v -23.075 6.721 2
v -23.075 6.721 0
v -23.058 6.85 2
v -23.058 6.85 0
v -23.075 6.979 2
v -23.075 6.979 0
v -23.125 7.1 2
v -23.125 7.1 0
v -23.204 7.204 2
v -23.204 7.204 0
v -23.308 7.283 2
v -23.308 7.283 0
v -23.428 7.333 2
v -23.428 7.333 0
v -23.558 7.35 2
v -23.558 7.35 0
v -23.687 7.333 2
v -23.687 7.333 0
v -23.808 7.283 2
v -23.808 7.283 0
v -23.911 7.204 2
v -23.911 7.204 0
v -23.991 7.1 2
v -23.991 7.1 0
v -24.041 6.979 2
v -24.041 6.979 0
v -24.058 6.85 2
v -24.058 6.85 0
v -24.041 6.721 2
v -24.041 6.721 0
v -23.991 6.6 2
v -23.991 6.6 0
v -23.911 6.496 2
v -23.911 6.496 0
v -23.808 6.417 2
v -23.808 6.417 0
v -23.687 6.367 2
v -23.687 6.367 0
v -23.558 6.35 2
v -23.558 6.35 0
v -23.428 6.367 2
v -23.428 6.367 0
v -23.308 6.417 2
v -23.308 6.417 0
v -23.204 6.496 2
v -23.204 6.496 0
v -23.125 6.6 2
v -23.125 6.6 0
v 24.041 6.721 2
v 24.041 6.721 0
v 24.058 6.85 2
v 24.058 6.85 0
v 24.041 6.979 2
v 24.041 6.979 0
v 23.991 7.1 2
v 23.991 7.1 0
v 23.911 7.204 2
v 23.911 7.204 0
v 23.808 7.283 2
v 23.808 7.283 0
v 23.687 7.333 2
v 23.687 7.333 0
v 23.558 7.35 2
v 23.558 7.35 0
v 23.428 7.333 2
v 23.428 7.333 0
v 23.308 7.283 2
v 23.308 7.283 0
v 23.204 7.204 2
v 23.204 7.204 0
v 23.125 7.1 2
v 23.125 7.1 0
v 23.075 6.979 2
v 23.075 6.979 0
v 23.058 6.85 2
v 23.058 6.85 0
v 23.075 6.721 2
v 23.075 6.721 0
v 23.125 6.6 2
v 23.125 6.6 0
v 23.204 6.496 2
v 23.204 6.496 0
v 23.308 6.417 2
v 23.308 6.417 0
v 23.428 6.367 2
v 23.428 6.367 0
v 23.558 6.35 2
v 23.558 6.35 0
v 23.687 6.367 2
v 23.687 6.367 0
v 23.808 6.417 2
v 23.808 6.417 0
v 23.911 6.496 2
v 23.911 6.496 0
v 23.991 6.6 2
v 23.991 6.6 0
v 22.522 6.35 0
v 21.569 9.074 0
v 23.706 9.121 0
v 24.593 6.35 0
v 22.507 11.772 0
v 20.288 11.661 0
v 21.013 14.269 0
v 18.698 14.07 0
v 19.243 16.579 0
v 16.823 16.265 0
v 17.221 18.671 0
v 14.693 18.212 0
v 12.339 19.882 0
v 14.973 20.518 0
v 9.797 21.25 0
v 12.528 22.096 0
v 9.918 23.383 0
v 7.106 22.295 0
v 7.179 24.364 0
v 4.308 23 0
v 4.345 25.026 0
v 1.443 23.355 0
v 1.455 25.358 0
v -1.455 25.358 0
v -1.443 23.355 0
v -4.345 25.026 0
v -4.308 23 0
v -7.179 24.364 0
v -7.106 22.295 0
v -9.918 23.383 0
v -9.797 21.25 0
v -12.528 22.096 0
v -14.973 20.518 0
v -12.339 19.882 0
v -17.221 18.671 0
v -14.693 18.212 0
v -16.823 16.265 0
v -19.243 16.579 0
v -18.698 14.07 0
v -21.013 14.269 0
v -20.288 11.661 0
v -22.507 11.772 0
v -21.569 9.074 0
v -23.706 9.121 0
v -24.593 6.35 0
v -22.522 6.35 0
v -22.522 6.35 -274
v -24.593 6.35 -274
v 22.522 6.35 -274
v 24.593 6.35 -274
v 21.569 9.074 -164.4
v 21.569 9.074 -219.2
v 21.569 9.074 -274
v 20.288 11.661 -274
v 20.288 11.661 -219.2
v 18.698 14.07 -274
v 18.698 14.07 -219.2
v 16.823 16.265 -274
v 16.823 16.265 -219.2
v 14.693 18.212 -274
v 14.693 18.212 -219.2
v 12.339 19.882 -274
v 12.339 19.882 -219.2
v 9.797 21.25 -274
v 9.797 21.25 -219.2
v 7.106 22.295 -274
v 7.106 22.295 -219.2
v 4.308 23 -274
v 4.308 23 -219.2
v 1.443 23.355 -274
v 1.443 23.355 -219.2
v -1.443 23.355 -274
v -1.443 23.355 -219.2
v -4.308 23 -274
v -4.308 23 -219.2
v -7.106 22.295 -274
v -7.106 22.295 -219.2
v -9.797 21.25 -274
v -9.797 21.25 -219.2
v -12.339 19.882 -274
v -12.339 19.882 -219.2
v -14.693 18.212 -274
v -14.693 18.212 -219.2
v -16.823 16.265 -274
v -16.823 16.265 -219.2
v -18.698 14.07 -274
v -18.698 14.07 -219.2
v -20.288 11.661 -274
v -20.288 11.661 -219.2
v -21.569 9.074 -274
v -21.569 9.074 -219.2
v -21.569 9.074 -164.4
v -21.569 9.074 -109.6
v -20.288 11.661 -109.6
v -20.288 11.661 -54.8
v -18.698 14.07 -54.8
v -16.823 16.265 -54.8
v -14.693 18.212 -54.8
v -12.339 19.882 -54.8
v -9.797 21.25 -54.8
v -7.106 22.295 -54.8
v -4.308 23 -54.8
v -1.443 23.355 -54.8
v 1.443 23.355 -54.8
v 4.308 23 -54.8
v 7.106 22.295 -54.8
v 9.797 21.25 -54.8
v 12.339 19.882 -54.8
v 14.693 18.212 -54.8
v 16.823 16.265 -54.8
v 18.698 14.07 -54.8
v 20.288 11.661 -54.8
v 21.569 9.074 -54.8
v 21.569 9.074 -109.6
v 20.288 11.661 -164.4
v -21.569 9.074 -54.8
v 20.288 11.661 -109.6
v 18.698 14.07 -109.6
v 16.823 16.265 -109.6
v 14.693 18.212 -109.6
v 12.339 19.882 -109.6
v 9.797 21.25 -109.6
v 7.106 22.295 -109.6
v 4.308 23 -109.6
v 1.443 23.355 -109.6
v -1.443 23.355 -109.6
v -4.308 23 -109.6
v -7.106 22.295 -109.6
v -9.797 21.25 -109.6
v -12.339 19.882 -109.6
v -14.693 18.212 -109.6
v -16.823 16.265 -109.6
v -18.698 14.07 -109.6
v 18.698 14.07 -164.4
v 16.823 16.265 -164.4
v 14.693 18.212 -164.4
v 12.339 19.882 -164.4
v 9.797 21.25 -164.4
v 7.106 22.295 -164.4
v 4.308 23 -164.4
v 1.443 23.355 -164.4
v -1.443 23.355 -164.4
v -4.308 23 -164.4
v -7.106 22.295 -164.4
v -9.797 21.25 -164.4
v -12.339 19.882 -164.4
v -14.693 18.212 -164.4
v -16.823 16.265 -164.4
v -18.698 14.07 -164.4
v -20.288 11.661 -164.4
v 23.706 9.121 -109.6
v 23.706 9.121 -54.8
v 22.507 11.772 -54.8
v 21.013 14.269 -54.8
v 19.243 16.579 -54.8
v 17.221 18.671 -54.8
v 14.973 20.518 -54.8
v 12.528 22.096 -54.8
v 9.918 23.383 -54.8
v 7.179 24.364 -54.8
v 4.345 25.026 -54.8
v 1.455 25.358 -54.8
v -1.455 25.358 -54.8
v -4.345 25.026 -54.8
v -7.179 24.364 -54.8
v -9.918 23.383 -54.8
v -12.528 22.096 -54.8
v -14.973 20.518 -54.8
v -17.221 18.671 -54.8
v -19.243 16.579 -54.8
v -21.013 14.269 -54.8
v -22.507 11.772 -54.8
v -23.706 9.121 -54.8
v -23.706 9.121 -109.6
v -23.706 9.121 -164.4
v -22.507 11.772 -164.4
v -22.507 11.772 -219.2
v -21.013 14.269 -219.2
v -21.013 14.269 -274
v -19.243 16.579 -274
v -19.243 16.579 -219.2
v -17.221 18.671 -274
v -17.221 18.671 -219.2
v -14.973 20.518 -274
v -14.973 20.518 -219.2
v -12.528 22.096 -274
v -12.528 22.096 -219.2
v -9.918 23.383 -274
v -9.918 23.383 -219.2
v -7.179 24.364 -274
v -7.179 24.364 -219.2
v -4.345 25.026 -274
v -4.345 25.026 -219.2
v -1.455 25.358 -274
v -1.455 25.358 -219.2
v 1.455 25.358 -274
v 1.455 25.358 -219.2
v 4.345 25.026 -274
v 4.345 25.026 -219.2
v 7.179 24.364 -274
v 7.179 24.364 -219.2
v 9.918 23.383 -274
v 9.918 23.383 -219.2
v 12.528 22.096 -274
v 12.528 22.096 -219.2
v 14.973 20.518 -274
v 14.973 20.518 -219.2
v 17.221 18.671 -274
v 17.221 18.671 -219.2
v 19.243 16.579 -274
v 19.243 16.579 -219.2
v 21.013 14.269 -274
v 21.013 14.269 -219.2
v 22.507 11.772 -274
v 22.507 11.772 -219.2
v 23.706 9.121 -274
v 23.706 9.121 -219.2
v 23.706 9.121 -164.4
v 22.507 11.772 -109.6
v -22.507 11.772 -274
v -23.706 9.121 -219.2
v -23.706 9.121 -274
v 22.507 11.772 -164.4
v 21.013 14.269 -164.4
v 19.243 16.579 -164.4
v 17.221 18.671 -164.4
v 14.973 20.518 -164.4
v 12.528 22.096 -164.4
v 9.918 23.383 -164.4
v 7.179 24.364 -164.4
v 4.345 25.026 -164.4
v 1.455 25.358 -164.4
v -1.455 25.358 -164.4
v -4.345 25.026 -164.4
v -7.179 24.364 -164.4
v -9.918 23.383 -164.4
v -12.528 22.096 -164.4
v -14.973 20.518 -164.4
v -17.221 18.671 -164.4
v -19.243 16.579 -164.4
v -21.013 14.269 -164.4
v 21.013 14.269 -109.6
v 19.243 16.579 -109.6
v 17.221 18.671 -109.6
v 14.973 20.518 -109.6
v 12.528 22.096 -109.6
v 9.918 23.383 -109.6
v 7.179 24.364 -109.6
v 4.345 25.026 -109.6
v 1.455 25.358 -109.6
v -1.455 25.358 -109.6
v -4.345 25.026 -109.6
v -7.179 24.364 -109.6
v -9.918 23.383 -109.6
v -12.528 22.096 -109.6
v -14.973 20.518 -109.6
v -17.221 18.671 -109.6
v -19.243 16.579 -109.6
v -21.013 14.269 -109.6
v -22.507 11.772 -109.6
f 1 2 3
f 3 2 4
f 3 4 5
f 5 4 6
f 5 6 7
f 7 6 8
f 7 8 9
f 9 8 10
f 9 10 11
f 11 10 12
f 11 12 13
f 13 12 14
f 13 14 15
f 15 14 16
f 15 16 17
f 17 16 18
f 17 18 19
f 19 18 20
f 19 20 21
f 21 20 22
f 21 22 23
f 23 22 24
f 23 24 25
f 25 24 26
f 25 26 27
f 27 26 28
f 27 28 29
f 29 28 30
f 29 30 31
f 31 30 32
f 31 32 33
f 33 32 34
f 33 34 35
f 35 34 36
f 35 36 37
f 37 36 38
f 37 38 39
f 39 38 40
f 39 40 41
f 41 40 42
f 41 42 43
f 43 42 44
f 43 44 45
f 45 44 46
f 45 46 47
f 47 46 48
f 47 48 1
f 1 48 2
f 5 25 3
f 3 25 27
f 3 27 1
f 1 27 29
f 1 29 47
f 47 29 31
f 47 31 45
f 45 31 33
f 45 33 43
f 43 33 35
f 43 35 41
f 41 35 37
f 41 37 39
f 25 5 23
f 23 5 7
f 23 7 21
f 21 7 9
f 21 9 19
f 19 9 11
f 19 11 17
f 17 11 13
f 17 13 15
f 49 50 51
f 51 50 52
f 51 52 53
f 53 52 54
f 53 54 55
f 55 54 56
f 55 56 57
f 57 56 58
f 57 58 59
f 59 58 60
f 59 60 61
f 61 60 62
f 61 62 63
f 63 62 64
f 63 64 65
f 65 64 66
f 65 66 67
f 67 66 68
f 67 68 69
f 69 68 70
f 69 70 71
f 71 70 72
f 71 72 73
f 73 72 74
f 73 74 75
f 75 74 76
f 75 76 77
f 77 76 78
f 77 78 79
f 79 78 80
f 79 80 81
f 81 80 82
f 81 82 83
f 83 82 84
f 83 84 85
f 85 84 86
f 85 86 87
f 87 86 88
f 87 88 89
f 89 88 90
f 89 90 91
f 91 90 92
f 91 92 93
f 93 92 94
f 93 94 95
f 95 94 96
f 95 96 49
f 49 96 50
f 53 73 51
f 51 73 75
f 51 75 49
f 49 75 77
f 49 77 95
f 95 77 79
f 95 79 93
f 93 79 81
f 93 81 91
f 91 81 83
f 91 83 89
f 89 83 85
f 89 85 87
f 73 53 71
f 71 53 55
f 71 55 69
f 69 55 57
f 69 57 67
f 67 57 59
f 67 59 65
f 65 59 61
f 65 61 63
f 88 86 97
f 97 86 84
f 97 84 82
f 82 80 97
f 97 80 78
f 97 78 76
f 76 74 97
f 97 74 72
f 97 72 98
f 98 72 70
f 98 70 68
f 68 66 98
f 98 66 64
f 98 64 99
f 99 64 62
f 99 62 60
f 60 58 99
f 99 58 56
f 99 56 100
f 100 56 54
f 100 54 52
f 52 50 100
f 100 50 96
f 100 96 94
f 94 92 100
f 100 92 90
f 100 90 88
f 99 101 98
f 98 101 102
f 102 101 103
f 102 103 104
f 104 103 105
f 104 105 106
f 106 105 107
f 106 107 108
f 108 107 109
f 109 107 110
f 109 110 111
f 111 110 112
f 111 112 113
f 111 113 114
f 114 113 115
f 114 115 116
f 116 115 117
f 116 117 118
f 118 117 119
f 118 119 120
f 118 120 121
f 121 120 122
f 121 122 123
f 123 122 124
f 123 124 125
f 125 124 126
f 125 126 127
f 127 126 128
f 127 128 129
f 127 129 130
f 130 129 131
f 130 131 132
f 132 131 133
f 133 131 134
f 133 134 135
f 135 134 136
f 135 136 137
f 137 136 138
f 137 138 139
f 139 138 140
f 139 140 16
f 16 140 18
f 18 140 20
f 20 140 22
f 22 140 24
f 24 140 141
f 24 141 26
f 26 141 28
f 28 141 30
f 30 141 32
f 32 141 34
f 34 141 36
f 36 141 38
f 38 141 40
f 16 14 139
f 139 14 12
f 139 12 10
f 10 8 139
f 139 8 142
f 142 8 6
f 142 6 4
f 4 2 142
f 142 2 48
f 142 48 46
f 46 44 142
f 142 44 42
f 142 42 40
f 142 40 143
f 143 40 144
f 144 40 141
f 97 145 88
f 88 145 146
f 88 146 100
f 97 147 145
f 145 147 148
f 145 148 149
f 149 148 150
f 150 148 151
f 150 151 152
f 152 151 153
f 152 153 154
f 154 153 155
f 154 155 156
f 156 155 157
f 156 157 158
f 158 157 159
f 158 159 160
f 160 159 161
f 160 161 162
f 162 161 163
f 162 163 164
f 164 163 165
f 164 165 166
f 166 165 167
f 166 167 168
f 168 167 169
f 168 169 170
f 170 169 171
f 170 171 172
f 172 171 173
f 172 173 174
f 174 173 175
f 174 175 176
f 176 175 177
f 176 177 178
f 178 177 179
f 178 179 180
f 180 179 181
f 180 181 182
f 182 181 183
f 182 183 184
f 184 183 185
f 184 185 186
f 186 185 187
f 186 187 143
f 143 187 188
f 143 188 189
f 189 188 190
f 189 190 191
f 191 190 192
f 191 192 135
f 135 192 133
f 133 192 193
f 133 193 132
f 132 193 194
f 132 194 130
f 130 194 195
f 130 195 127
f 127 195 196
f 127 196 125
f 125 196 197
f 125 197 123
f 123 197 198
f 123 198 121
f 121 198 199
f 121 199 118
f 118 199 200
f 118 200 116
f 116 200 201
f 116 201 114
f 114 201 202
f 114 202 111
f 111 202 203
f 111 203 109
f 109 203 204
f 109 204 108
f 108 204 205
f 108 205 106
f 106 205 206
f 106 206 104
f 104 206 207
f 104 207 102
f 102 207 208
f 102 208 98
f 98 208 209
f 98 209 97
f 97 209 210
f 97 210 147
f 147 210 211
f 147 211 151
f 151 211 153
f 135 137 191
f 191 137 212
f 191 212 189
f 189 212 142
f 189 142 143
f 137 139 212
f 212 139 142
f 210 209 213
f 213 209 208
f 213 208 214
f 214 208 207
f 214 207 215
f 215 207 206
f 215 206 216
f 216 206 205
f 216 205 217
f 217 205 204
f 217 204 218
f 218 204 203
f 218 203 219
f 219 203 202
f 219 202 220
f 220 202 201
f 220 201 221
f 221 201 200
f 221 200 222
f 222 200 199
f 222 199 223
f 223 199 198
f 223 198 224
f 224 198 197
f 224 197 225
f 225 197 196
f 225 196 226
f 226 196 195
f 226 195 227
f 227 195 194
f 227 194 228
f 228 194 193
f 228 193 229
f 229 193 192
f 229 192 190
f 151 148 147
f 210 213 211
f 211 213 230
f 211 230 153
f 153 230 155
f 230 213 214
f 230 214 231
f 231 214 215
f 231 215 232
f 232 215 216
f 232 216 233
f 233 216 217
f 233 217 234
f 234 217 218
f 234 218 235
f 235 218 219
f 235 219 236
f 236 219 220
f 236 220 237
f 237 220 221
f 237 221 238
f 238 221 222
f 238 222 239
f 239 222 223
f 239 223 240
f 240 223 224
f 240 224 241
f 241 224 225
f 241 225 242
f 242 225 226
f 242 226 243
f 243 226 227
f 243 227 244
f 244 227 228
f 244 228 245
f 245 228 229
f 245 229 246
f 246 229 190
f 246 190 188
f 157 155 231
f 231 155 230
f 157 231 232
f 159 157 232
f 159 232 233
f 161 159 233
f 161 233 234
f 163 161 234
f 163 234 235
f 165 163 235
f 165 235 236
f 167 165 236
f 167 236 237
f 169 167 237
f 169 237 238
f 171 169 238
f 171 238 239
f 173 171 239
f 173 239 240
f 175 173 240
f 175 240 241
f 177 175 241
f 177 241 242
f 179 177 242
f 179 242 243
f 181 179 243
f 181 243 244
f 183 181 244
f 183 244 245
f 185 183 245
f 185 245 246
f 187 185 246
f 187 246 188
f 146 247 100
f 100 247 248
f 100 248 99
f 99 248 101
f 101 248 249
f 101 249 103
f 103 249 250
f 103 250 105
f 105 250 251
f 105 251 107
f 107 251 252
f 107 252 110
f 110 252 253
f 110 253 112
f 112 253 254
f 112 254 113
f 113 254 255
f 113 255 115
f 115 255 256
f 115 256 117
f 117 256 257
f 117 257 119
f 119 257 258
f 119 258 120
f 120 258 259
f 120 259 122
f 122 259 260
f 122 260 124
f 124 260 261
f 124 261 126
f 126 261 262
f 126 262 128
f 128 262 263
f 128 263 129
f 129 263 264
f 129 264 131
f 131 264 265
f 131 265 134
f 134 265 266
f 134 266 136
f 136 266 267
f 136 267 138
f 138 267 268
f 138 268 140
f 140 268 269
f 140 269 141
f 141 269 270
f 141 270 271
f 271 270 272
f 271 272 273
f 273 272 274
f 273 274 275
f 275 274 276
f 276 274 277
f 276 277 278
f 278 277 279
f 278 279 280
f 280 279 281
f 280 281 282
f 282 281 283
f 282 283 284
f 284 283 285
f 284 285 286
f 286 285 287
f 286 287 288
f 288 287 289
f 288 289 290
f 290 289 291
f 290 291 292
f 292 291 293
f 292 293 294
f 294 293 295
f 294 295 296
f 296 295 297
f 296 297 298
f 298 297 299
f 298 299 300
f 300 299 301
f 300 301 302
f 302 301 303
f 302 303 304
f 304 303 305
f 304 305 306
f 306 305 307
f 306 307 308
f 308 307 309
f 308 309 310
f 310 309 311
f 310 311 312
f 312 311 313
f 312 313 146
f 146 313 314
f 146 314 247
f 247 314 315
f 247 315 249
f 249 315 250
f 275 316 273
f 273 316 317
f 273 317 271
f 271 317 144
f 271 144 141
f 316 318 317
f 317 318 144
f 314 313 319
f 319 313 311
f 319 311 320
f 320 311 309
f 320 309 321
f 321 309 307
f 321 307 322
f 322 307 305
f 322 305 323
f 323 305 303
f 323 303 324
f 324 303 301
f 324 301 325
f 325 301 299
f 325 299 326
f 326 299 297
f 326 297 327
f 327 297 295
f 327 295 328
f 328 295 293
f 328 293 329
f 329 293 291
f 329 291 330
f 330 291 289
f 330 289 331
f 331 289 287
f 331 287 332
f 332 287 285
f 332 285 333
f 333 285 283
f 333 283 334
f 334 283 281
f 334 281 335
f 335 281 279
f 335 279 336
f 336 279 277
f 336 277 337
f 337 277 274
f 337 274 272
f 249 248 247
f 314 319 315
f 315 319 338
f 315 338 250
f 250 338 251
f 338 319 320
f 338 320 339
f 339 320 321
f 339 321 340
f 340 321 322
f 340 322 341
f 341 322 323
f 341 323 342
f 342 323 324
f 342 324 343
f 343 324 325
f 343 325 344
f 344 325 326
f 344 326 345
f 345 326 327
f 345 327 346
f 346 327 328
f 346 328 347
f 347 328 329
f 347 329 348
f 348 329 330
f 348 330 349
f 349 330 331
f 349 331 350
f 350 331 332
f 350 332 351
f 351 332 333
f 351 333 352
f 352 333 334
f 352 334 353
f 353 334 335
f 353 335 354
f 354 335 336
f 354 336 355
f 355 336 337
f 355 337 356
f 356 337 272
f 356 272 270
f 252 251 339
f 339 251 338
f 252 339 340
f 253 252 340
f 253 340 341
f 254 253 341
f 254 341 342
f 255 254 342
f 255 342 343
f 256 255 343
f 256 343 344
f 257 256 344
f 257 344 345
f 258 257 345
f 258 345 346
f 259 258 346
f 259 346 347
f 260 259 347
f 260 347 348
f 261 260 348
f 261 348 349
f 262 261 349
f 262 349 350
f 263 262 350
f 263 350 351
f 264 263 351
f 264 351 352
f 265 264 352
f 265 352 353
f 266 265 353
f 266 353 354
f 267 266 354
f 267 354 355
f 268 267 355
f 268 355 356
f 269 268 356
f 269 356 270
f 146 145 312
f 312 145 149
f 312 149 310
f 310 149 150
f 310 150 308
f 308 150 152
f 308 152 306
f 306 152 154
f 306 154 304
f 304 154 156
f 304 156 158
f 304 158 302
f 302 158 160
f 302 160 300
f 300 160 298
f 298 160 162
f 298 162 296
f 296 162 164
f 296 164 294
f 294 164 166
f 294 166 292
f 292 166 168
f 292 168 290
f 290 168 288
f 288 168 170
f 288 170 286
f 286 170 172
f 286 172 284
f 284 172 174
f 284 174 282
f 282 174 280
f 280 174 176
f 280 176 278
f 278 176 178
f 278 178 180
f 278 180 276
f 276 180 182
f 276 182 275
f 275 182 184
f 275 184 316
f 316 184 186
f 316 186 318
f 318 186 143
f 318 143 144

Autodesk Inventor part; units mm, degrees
ref_plane "YZ Plane" through (0, 0, 0) normal (1, 0, 0) x (0, 1, 0)
ref_plane "XZ Plane" through (0, 0, 0) normal (0, 1, 0) x (-1, 0, 0)
ref_plane "XY Plane" through (0, 0, 0) normal (0, 0, 1) x (1, 0, 0)
sketch "Sketch1" plane through (0, 0, 0) normal (0, 0, 1) x (1, 0, 0)
  circle A0 centre (0, 0) radius 25.4
  circle A1 centre (0, 0) radius 23.4
  dimension "d0" = 50.8
  dimension "d1" = 2
extrude "Extrusion1" add sketch "Sketch1" against normal blind 274
sketch "Sketch2" plane through (0, 0, 0) normal (0, 0, 1) x (1, 0, 0)
  line L0 (-25.4, 6.35) -> (25.4, 6.35)
  line L1 (25.4, 6.35) -> (25.4, -25.4)
  line L2 (25.4, -25.4) -> (-25.4, -25.4)
  line L3 (-25.4, -25.4) -> (-25.4, 6.35)
  circle A0 centre (0, 0) radius 25.4 projected
  line L4 (0, 25.4) -> (0, -25.4)
  point P0 (-24.5934, 6.35)
  point P1 (24.5934, 6.35)
  dimension "d6" = 25.4
  dimension "d7" = 25.4
  dimension "d8" = 25.4
  dimension "d9" = 19.05
extrude "Extrusion2" cut sketch "Sketch2" against normal through all contours L0 L4 A0 | L0 A0 L4 picked at (-1.884, -14.6044) picked at (1.884, -14.6044)
sketch "Sketch3" plane through (0, 0, 0) normal (0, 0, 1) x (1, 0, 0)
  line L0 (22.5219, 6.35) -> (24.5934, 6.35) projected
  line L1 (23.5577, 6.35) -> (23.5577, 9.4971)
  arc A0 (24.5934, 6.35) -> (-24.5934, 6.35) centre (0, 0) ccw projected
  circle A1 centre (23.5577, 6.85) radius 0.5
  line L2 (0, 25.4) -> (0, 6.35) construction
  circle A2 centre (-23.5577, 6.85) radius 0.5
  dimension "d12" = 1
  dimension "d13" = 0.5
extrude "Extrusion3" add sketch "Sketch3" along normal blind 2 contours A1 L1 | L1 A1 | A2
properties part number "PCB Tray Top_3DPrint"
